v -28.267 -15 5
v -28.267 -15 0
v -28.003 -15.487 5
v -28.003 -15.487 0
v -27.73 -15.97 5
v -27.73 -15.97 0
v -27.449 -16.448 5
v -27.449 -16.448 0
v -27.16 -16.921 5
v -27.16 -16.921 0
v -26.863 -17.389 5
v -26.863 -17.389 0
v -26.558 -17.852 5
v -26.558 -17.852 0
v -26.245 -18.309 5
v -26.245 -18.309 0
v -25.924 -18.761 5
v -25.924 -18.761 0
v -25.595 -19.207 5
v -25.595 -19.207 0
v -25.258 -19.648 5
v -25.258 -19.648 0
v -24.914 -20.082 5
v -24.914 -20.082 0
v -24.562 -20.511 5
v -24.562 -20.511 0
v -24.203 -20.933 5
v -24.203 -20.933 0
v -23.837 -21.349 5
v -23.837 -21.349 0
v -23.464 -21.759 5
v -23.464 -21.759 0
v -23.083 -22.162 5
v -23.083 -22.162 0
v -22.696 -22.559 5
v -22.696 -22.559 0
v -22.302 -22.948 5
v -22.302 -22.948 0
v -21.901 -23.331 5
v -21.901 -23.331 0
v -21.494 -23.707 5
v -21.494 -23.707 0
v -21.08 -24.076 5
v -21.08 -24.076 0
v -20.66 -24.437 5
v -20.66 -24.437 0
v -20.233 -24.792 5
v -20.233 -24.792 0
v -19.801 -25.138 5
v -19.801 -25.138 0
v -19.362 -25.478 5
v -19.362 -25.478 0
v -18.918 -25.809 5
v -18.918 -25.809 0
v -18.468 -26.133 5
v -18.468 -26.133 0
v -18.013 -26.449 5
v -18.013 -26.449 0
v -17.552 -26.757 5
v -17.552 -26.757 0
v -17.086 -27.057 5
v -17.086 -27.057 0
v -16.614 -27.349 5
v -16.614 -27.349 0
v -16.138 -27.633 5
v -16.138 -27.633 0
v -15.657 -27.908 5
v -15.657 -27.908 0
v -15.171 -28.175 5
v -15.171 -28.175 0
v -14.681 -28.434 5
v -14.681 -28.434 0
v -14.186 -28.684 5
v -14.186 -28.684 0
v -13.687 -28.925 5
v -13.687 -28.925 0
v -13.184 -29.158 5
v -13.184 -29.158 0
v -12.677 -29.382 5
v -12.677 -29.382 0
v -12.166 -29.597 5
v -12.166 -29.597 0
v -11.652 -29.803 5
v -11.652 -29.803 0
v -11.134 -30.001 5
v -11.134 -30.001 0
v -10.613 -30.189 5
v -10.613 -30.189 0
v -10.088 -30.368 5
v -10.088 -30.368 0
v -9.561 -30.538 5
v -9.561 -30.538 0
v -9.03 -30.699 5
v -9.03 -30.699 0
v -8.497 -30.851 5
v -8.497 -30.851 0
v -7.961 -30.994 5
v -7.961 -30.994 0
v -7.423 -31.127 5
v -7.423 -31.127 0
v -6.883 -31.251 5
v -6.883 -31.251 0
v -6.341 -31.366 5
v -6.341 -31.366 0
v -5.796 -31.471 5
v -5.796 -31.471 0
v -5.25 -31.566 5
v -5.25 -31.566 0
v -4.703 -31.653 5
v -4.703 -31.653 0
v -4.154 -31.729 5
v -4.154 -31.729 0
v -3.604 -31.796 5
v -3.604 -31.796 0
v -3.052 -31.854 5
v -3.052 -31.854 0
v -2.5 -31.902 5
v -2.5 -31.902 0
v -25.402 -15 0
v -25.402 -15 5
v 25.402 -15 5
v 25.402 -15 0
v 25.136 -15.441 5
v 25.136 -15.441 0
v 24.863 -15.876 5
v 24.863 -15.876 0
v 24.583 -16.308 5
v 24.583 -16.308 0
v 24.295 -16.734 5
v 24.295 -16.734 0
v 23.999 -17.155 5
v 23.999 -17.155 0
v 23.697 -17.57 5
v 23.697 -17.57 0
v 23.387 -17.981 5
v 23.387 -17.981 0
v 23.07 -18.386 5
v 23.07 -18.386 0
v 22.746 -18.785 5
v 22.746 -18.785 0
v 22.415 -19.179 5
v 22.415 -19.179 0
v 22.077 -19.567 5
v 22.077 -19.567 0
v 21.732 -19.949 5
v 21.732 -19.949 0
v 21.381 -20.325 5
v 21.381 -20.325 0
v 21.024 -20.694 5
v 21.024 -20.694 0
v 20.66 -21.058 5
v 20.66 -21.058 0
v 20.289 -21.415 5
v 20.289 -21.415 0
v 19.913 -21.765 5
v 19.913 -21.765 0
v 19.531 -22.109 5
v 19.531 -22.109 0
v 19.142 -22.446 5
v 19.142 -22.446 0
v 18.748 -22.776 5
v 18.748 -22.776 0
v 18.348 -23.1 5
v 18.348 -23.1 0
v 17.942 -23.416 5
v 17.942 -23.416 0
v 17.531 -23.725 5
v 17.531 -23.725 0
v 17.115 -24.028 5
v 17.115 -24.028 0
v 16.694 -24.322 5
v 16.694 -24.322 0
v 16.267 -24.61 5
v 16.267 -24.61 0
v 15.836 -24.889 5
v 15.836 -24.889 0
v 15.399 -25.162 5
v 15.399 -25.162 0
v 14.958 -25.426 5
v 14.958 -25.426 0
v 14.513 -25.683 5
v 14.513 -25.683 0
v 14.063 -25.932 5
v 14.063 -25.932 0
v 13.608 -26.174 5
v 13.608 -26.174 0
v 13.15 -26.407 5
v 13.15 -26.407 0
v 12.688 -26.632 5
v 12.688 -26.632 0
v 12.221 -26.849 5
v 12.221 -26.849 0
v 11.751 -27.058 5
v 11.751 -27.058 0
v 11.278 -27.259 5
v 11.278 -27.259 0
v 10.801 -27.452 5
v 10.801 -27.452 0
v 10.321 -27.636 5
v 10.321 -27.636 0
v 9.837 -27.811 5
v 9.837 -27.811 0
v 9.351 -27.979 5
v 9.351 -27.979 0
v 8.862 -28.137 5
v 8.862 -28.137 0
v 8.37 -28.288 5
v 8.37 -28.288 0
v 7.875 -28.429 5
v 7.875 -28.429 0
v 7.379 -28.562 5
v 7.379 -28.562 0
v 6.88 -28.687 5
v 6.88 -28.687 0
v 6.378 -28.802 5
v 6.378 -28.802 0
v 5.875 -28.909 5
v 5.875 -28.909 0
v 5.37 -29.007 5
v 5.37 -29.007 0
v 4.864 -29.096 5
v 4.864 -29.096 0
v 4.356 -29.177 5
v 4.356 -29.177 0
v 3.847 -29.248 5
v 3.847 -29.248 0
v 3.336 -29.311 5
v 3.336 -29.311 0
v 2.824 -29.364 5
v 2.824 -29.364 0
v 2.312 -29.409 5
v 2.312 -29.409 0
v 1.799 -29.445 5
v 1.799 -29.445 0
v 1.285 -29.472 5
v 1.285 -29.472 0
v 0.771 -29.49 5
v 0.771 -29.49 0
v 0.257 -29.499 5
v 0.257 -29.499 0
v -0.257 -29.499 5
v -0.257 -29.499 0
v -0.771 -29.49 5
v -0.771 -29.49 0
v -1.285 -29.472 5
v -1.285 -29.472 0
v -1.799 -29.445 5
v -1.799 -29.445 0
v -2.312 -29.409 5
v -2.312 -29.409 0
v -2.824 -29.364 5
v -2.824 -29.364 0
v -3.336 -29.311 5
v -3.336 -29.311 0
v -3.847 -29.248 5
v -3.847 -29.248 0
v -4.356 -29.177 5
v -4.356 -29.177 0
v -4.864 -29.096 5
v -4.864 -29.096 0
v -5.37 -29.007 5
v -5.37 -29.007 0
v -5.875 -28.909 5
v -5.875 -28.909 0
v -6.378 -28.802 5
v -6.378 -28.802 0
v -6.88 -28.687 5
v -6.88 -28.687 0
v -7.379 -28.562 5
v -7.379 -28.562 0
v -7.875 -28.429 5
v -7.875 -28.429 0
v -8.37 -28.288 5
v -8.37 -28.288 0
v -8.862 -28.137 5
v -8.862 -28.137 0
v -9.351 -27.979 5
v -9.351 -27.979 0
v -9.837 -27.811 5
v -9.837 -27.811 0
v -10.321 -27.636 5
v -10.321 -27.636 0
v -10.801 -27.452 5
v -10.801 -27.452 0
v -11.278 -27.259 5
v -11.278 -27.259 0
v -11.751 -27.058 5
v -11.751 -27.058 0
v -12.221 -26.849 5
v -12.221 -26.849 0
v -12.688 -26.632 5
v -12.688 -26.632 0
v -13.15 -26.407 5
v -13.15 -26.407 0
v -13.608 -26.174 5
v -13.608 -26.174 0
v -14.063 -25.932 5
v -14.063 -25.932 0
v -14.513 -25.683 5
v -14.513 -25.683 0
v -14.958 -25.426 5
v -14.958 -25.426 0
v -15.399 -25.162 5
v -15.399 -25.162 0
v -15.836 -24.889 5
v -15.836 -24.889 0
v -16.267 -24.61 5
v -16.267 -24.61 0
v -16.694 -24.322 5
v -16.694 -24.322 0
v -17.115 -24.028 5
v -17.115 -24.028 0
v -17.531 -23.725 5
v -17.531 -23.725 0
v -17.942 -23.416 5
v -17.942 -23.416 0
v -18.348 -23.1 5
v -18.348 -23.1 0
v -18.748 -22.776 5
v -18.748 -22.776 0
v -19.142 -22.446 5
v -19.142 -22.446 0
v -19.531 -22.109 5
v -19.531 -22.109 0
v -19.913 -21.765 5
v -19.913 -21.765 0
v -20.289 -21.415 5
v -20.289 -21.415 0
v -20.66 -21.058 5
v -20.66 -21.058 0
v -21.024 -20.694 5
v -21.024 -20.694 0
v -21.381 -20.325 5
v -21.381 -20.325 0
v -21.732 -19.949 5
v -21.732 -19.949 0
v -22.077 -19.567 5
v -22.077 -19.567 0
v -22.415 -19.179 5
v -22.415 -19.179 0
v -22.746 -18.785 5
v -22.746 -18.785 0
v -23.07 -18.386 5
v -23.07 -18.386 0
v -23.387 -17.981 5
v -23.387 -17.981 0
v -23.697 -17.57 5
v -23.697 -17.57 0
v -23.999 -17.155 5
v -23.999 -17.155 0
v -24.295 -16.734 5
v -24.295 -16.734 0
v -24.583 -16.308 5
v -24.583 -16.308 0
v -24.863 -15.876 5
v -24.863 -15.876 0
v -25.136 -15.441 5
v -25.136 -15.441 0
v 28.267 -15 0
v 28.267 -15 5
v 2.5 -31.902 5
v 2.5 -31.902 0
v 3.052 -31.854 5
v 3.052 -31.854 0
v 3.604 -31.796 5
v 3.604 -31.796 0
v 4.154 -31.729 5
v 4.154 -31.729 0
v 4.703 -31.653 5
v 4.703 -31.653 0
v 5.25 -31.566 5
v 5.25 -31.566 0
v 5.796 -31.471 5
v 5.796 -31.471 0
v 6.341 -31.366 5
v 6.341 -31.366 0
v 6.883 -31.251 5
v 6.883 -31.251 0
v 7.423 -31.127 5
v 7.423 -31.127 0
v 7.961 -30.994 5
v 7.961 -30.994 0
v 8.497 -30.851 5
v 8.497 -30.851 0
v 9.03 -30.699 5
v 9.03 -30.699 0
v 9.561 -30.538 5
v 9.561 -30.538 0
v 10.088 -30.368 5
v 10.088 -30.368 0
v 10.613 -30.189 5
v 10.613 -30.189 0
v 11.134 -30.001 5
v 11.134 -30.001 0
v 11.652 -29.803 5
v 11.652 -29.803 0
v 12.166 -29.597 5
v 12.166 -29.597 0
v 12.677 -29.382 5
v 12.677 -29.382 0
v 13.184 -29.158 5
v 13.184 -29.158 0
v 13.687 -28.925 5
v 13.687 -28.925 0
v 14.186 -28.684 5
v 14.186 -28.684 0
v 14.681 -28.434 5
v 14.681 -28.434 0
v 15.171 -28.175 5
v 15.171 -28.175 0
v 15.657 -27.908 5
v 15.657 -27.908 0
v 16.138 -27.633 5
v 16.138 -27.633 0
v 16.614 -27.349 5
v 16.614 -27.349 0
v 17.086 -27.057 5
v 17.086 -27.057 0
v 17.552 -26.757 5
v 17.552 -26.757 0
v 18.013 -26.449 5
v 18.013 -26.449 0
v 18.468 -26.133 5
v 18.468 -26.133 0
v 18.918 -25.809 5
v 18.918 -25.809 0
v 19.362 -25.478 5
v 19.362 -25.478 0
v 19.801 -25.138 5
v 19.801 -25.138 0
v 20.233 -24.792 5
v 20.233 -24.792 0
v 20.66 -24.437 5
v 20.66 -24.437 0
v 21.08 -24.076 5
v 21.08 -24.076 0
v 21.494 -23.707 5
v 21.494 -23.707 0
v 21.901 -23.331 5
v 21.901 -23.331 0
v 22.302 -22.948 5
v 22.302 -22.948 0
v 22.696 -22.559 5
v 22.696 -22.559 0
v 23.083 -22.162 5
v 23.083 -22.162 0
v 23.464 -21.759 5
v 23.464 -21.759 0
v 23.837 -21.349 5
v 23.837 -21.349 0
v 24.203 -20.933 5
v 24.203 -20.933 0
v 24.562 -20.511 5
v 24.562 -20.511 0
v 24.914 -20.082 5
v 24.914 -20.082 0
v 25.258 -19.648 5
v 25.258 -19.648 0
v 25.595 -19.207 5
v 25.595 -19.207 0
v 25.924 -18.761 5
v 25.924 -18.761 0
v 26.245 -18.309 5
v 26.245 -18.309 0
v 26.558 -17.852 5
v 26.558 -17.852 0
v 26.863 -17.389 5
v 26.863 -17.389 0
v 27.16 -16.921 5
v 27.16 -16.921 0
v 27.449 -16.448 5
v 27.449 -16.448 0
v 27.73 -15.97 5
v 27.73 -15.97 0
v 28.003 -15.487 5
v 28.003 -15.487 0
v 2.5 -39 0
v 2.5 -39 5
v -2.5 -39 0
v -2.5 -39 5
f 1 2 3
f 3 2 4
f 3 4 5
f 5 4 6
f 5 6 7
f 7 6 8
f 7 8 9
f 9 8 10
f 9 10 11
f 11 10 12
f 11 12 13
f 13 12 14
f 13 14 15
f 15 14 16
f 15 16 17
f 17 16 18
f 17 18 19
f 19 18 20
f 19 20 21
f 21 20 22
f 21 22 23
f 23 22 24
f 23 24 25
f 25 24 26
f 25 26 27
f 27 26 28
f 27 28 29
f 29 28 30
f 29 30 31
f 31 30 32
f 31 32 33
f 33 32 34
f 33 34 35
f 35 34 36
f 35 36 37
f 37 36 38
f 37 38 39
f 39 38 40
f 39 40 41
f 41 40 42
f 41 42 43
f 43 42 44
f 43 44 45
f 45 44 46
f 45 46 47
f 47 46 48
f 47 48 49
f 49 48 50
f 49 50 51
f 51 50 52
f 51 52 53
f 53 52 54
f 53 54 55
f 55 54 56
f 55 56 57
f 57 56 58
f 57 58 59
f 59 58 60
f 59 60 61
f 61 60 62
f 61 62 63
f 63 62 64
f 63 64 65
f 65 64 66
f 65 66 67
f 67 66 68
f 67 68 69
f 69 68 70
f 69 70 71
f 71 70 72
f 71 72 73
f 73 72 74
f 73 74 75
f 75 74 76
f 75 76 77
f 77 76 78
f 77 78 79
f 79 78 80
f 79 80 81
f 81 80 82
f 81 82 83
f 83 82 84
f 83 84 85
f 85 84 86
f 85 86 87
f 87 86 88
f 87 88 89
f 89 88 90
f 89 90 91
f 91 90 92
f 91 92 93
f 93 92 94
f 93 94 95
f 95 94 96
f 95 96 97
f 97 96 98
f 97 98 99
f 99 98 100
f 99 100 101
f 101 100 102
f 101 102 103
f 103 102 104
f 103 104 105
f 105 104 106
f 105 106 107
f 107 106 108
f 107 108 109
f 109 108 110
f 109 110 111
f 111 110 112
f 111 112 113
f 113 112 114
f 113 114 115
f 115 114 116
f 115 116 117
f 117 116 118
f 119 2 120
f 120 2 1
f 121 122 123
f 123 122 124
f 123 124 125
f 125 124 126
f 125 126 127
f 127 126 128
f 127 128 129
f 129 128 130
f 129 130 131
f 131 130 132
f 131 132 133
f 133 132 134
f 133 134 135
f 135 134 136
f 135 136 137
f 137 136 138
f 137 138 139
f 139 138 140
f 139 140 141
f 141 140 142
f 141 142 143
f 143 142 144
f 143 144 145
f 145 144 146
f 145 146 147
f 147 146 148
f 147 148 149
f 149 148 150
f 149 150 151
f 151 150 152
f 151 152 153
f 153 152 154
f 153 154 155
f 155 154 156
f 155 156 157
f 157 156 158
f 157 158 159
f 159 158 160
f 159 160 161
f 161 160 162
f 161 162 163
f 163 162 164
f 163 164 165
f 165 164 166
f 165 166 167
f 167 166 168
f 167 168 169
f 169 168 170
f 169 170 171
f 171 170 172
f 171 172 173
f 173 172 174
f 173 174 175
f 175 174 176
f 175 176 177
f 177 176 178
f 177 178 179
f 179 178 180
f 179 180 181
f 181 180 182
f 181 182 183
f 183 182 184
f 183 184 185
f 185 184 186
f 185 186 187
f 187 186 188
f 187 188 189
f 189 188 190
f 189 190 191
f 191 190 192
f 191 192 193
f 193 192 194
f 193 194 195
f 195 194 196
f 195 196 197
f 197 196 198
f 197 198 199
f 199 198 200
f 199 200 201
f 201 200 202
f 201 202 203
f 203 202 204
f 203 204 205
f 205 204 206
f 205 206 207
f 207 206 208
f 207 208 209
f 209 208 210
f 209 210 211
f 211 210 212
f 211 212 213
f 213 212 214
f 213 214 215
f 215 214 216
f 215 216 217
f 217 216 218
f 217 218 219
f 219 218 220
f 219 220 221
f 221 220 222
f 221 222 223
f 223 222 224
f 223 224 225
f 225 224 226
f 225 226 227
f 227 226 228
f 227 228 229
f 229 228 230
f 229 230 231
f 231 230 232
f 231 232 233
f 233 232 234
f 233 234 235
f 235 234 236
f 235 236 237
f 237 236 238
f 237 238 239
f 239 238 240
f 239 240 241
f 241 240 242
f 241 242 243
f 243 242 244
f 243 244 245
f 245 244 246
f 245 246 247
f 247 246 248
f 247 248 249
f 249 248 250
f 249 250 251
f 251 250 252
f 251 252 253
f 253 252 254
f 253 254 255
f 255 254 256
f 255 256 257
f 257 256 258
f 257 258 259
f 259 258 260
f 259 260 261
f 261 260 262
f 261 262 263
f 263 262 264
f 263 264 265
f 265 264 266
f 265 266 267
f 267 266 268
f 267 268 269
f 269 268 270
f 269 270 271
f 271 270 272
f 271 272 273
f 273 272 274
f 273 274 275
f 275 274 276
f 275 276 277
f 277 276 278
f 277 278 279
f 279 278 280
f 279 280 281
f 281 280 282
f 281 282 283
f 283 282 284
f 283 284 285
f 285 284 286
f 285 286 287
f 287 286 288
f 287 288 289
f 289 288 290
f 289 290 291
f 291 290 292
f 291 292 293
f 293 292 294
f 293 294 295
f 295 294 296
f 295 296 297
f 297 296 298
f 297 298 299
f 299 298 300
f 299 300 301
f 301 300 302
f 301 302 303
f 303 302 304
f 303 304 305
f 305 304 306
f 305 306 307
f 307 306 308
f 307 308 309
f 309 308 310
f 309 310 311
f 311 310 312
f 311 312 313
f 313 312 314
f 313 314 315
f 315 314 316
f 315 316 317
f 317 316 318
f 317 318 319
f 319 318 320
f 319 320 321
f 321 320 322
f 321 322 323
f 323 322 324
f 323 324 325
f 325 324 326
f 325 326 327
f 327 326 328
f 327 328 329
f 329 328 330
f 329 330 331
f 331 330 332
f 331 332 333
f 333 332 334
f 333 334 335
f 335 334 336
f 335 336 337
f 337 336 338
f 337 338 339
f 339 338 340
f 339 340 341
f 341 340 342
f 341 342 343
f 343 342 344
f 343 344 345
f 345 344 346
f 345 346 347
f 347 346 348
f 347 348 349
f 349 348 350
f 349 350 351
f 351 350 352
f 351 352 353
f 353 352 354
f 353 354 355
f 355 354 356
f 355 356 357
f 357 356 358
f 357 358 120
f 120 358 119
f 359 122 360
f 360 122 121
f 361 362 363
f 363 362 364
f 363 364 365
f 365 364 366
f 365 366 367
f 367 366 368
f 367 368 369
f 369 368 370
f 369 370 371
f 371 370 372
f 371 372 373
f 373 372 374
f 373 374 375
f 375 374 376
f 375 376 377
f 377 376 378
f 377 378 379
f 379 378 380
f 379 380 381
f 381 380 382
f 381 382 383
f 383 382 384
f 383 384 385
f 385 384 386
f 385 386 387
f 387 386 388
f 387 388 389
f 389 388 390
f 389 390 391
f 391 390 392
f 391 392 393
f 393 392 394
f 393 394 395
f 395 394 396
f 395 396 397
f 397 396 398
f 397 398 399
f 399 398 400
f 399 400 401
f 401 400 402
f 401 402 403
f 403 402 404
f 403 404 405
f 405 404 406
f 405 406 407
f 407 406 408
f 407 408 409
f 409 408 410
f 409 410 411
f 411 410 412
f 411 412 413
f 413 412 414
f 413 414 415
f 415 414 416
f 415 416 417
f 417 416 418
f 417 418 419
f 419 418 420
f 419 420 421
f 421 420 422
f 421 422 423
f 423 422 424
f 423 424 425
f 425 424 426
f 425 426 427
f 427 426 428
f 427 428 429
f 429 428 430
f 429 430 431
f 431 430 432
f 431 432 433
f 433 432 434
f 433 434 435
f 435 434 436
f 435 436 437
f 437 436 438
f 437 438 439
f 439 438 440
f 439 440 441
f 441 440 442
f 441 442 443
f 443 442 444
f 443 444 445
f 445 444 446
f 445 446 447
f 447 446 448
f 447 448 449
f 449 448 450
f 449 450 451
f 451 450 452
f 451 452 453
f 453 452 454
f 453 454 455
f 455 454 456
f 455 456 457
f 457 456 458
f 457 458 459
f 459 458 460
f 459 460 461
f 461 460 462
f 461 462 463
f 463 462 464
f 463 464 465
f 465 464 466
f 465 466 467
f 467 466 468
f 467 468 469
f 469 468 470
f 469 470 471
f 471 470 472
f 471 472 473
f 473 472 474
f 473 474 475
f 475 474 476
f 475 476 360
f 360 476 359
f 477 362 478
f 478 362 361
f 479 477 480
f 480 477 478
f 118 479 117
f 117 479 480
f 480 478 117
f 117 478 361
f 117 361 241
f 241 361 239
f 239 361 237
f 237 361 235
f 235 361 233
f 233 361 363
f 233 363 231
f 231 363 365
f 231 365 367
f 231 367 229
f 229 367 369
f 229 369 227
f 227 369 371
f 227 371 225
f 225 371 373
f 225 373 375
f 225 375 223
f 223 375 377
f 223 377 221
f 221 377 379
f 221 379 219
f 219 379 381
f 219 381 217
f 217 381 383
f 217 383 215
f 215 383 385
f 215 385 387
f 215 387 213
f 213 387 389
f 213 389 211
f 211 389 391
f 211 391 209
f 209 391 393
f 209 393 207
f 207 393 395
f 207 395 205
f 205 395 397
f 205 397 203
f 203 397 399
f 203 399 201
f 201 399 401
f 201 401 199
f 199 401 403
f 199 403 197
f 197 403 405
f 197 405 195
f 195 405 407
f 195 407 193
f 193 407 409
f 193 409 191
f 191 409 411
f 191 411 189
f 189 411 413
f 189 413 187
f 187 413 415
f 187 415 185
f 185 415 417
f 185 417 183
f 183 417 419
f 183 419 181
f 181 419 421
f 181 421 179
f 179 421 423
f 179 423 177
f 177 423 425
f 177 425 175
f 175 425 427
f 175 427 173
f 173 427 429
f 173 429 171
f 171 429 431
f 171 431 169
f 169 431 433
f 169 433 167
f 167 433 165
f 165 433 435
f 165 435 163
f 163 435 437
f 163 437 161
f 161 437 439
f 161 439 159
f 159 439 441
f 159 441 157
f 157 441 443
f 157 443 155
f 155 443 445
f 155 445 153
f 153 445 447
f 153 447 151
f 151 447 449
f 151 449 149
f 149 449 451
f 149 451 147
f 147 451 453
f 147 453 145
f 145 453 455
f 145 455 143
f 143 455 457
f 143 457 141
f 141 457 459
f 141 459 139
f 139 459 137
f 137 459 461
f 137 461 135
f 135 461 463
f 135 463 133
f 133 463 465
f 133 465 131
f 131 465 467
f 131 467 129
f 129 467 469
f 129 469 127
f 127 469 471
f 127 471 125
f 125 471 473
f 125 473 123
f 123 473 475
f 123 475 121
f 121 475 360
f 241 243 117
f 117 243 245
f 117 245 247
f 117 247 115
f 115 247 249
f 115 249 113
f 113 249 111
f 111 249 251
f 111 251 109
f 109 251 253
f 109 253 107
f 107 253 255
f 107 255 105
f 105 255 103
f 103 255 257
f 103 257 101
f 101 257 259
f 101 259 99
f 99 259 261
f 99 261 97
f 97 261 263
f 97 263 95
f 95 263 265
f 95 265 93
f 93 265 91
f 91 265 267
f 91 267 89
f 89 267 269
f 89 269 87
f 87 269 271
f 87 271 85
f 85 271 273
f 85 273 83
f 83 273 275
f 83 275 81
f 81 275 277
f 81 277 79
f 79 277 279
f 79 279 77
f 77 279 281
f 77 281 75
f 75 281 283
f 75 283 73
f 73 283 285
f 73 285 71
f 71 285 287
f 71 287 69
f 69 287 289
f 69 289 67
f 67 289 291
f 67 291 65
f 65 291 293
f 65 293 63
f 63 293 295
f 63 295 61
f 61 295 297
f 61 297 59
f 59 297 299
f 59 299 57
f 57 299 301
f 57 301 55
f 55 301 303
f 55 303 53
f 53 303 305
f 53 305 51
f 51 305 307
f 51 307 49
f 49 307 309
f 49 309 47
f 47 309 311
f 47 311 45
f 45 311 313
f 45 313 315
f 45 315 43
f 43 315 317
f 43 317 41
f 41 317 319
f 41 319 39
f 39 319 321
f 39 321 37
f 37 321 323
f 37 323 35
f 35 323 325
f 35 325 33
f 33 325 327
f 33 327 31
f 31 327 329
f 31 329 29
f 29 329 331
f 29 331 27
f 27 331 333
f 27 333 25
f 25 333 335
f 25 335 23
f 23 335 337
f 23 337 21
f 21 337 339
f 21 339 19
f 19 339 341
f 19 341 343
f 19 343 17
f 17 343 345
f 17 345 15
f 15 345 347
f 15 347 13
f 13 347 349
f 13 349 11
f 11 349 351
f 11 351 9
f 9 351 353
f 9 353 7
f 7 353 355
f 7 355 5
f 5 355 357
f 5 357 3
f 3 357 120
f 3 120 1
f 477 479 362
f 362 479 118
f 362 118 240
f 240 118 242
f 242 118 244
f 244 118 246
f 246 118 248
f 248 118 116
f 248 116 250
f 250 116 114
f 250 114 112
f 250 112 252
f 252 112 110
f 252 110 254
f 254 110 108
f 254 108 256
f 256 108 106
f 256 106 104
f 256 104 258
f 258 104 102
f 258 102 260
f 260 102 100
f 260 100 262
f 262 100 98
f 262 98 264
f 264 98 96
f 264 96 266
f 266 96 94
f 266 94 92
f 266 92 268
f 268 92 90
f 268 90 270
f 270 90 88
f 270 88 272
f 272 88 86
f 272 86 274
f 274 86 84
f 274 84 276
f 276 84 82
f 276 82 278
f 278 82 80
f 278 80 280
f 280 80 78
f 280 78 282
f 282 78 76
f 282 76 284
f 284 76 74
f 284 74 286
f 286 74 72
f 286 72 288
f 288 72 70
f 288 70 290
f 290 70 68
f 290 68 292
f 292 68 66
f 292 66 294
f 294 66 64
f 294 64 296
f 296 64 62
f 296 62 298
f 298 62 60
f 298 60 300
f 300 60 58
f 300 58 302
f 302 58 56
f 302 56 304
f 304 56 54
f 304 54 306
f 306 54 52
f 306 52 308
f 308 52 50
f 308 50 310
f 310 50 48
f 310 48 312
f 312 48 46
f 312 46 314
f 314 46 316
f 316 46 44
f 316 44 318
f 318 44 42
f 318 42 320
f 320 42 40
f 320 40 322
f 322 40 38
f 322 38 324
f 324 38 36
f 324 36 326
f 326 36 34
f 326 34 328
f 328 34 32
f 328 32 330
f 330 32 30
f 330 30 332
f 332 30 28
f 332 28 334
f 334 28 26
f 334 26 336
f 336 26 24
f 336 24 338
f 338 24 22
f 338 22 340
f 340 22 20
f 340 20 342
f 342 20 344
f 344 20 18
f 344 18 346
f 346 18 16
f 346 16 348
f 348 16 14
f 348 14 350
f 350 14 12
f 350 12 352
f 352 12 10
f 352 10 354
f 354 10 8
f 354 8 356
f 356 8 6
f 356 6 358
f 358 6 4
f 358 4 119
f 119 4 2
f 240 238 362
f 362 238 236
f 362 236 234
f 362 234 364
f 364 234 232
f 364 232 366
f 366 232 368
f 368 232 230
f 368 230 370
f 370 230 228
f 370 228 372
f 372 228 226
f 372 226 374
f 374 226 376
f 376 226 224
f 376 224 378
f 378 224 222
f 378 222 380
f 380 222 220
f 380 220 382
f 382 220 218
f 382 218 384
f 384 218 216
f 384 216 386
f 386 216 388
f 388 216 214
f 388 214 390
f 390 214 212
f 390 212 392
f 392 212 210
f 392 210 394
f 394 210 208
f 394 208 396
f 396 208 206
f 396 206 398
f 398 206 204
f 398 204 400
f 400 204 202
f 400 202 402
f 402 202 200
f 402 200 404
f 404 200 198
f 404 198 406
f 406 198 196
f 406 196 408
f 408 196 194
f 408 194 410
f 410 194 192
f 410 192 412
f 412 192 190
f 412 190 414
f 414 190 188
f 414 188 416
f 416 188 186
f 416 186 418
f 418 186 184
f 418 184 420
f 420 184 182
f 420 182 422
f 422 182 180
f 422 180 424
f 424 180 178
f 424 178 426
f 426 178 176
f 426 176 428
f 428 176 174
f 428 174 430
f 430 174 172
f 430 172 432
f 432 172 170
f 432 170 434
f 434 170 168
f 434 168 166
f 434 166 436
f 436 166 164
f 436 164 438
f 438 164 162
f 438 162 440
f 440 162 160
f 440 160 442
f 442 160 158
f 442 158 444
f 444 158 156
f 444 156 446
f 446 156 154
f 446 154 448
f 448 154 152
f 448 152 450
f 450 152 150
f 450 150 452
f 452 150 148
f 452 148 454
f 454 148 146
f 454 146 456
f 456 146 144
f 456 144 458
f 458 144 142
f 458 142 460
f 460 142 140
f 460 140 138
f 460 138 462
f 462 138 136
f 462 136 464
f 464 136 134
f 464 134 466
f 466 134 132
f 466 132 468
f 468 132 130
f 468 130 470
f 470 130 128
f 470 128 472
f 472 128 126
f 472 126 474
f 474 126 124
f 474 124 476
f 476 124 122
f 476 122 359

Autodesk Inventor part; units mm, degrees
ref_plane "YZ Plane" through (0, 0, 0) normal (1, 0, 0) x (0, 1, 0)
ref_plane "XZ Plane" through (0, 0, 0) normal (0, 1, 0) x (-1, 0, 0)
ref_plane "XY Plane" through (0, 0, 0) normal (0, 0, 1) x (1, 0, 0)
sketch "Sketch1" plane through (0, 0, 0) normal (0, 0, 1) x (1, 0, 0)
  arc A0 (-25.4018, -15) -> (25.4018, -15) centre (0, 0) ccw
  line L0 (2.5, -32) -> (2.5, -39)
  line L1 (2.5, -39) -> (-2.5, -39)
  line L2 (-2.5, -39) -> (-2.5, -32)
  line L3 (-2.5, -32) -> (-2.5, -31.9022)
  line L4 (2.5, -32) -> (2.5, -31.9022)
  arc A1 (-28.2666, -15) -> (-2.5, -31.9022) centre (0, 0) ccw
  arc A2 (2.5, -31.9022) -> (28.2666, -15) centre (0, 0) ccw
  line L5 (-28.2666, -15) -> (-25.4018, -15)
  line L6 (25.4018, -15) -> (28.2666, -15)
  dimension "d43" = 5
  dimension "d64" = 7
extrude "Extrusion5" add sketch "Sketch1" along normal blind 5
properties part number "Clip_TestFitV1"
